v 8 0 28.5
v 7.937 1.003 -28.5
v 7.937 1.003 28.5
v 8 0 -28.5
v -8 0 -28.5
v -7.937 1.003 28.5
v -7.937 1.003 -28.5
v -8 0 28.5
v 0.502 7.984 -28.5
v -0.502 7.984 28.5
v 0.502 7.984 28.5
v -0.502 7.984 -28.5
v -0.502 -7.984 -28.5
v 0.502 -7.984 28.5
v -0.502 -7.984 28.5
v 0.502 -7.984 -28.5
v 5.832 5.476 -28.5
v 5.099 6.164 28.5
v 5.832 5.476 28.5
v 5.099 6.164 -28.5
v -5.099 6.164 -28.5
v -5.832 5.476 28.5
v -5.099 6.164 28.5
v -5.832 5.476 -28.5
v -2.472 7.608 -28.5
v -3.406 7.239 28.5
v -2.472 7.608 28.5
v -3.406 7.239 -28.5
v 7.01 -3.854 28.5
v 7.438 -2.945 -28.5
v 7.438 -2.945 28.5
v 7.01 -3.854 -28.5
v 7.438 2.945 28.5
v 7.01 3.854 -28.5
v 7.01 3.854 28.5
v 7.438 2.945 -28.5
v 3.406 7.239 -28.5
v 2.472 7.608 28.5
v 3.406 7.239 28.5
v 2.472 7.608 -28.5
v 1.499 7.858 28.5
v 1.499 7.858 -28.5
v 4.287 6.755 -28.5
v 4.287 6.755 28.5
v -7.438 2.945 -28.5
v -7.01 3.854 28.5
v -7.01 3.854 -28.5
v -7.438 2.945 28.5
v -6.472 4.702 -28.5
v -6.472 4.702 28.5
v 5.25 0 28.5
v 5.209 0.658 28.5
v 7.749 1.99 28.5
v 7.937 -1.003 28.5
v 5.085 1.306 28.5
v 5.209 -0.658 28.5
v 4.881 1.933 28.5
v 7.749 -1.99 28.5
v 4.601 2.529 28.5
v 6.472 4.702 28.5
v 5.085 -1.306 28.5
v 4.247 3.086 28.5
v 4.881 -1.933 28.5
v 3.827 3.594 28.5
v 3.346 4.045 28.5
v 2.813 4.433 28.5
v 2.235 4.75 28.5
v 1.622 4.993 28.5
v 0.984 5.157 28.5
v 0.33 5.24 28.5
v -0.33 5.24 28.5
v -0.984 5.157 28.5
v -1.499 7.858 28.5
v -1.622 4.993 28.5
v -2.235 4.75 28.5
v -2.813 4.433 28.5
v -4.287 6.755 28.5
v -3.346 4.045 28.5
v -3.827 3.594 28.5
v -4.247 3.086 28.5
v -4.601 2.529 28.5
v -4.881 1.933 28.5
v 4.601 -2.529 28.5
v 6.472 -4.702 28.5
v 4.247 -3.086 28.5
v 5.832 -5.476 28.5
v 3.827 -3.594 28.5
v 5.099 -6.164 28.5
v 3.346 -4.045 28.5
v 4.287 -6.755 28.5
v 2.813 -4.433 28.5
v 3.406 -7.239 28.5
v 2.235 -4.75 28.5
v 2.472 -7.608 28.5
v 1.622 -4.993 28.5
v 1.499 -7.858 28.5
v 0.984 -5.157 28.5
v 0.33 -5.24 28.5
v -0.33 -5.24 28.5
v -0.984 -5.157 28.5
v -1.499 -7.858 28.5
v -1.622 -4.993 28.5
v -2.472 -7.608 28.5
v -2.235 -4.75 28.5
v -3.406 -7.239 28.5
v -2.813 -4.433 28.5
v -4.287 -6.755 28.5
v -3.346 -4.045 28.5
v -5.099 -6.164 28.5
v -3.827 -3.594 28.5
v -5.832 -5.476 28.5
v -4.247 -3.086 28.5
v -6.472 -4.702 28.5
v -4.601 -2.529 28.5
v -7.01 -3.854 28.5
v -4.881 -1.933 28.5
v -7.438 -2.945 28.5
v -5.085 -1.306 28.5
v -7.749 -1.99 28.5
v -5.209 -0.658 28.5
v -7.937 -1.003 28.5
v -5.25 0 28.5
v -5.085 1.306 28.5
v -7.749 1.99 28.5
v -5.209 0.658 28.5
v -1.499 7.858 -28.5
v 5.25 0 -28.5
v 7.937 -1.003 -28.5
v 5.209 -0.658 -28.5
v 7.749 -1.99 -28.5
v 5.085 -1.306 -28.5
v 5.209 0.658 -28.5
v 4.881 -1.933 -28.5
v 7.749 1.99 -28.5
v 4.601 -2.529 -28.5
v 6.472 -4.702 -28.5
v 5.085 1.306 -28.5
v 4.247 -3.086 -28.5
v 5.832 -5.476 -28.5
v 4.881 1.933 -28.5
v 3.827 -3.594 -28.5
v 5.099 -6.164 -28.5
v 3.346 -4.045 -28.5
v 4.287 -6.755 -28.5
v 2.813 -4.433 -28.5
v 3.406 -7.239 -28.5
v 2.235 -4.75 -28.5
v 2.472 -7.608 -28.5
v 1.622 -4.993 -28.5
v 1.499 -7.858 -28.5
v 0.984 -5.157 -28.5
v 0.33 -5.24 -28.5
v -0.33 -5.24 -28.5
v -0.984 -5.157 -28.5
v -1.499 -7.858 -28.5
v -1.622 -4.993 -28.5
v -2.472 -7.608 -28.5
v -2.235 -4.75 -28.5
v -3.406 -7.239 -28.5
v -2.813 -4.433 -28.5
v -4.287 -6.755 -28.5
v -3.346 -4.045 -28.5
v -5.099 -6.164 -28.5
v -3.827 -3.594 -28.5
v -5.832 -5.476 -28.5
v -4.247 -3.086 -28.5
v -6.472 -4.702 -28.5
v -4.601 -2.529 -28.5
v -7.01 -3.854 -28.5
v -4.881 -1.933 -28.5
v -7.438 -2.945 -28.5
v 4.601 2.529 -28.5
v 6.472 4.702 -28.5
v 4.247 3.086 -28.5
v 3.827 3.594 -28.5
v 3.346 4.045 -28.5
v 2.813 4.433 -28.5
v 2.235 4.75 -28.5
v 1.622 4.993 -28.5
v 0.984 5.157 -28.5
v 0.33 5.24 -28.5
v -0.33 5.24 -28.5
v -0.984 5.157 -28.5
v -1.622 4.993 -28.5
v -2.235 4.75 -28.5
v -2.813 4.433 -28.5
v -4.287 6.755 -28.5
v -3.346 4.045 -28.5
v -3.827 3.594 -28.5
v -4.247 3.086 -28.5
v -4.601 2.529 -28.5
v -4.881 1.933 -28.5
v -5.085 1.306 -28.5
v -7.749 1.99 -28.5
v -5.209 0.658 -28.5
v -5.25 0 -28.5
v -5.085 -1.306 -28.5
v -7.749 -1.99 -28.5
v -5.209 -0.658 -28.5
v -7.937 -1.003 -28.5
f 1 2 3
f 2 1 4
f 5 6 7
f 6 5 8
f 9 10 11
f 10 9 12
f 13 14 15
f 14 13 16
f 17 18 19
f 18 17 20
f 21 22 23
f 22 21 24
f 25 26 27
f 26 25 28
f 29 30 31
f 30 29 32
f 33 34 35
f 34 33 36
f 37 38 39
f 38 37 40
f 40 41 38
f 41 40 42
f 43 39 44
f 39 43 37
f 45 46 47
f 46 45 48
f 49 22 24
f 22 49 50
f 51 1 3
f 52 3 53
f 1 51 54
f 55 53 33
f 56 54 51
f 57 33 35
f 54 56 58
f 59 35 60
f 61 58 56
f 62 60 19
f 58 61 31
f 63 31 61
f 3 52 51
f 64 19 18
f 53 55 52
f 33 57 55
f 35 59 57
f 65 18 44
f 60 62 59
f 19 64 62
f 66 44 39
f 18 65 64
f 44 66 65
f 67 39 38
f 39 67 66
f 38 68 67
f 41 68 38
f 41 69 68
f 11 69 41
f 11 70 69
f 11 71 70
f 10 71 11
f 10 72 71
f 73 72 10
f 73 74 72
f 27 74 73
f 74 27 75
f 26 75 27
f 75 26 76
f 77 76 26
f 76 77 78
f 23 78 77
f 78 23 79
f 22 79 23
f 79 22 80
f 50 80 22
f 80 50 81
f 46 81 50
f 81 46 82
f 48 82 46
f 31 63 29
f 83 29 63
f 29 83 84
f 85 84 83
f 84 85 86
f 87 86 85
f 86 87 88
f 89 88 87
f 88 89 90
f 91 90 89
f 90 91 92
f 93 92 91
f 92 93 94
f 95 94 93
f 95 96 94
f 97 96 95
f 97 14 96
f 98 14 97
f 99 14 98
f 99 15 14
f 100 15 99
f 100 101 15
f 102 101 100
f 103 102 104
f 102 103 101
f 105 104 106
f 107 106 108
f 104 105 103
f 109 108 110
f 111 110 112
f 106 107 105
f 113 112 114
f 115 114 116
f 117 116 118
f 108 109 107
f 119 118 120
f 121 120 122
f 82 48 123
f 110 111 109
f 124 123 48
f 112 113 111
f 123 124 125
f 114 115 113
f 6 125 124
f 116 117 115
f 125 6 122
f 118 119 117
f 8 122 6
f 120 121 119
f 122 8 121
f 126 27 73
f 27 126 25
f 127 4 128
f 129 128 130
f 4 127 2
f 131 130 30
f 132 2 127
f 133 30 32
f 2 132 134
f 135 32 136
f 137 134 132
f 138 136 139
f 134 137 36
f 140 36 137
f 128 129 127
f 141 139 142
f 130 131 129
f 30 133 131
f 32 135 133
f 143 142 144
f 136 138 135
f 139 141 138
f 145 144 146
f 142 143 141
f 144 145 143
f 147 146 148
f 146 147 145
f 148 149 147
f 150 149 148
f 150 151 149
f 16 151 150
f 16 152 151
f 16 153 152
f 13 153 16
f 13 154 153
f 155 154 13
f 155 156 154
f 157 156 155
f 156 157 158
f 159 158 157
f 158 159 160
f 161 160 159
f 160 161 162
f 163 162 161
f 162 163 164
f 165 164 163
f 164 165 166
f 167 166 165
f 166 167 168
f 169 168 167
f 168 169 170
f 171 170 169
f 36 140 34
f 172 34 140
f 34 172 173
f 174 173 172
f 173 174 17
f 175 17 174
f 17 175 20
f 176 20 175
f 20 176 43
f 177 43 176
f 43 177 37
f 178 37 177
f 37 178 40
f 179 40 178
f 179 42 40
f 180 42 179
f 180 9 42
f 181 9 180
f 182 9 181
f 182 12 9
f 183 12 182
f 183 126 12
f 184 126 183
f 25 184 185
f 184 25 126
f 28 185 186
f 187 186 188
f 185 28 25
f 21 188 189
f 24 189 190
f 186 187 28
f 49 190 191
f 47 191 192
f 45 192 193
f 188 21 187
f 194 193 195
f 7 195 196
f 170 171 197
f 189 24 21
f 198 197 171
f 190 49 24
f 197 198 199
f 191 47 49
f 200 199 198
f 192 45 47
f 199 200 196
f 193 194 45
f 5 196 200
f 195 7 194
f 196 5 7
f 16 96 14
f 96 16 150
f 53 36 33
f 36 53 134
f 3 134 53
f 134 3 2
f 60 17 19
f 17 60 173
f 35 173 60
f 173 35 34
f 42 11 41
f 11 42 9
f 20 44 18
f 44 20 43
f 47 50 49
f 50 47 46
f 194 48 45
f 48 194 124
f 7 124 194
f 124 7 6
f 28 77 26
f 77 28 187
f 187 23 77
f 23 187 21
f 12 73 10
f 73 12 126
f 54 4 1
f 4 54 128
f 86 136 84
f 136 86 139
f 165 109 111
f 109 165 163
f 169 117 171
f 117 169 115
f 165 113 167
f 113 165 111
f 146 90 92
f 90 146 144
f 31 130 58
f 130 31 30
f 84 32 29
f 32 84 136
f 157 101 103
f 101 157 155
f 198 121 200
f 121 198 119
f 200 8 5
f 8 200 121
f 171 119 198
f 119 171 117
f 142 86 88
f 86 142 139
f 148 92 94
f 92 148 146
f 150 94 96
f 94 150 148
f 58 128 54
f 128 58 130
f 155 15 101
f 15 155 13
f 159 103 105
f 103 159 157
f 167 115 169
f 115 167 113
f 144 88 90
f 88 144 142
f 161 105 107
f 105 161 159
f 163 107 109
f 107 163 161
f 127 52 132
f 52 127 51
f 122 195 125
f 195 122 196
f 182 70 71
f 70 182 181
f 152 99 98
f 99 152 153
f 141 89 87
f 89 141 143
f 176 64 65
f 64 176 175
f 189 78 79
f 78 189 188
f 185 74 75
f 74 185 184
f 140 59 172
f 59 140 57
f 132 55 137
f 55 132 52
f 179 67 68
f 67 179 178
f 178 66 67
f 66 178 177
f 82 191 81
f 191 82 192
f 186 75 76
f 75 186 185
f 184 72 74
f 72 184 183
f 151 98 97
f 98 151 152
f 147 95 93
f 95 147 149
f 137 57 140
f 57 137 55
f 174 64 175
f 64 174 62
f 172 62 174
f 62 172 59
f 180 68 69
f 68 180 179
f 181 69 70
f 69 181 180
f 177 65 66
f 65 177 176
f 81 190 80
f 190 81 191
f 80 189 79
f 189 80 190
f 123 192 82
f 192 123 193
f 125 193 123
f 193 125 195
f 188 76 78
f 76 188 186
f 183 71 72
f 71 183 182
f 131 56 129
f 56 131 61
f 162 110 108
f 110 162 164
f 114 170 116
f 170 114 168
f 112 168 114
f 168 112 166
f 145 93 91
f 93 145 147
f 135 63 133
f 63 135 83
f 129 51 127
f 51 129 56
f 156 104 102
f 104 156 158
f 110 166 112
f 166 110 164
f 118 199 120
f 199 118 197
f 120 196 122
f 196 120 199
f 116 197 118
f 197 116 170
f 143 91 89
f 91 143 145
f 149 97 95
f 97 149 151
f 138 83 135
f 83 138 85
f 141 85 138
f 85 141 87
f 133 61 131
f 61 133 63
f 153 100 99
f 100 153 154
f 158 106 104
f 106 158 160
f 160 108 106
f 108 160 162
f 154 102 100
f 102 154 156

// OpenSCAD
$fn = 50;


difference() {
	union() {
		translate(v = [0, 0, -28.5000000000]) {
			cylinder(h = 57, r = 8.0000000000);
		}
	}
	union() {
		translate(v = [0, 0, -100.0000000000]) {
			cylinder(h = 200, r = 5.2500000000);
		}
	}
}
